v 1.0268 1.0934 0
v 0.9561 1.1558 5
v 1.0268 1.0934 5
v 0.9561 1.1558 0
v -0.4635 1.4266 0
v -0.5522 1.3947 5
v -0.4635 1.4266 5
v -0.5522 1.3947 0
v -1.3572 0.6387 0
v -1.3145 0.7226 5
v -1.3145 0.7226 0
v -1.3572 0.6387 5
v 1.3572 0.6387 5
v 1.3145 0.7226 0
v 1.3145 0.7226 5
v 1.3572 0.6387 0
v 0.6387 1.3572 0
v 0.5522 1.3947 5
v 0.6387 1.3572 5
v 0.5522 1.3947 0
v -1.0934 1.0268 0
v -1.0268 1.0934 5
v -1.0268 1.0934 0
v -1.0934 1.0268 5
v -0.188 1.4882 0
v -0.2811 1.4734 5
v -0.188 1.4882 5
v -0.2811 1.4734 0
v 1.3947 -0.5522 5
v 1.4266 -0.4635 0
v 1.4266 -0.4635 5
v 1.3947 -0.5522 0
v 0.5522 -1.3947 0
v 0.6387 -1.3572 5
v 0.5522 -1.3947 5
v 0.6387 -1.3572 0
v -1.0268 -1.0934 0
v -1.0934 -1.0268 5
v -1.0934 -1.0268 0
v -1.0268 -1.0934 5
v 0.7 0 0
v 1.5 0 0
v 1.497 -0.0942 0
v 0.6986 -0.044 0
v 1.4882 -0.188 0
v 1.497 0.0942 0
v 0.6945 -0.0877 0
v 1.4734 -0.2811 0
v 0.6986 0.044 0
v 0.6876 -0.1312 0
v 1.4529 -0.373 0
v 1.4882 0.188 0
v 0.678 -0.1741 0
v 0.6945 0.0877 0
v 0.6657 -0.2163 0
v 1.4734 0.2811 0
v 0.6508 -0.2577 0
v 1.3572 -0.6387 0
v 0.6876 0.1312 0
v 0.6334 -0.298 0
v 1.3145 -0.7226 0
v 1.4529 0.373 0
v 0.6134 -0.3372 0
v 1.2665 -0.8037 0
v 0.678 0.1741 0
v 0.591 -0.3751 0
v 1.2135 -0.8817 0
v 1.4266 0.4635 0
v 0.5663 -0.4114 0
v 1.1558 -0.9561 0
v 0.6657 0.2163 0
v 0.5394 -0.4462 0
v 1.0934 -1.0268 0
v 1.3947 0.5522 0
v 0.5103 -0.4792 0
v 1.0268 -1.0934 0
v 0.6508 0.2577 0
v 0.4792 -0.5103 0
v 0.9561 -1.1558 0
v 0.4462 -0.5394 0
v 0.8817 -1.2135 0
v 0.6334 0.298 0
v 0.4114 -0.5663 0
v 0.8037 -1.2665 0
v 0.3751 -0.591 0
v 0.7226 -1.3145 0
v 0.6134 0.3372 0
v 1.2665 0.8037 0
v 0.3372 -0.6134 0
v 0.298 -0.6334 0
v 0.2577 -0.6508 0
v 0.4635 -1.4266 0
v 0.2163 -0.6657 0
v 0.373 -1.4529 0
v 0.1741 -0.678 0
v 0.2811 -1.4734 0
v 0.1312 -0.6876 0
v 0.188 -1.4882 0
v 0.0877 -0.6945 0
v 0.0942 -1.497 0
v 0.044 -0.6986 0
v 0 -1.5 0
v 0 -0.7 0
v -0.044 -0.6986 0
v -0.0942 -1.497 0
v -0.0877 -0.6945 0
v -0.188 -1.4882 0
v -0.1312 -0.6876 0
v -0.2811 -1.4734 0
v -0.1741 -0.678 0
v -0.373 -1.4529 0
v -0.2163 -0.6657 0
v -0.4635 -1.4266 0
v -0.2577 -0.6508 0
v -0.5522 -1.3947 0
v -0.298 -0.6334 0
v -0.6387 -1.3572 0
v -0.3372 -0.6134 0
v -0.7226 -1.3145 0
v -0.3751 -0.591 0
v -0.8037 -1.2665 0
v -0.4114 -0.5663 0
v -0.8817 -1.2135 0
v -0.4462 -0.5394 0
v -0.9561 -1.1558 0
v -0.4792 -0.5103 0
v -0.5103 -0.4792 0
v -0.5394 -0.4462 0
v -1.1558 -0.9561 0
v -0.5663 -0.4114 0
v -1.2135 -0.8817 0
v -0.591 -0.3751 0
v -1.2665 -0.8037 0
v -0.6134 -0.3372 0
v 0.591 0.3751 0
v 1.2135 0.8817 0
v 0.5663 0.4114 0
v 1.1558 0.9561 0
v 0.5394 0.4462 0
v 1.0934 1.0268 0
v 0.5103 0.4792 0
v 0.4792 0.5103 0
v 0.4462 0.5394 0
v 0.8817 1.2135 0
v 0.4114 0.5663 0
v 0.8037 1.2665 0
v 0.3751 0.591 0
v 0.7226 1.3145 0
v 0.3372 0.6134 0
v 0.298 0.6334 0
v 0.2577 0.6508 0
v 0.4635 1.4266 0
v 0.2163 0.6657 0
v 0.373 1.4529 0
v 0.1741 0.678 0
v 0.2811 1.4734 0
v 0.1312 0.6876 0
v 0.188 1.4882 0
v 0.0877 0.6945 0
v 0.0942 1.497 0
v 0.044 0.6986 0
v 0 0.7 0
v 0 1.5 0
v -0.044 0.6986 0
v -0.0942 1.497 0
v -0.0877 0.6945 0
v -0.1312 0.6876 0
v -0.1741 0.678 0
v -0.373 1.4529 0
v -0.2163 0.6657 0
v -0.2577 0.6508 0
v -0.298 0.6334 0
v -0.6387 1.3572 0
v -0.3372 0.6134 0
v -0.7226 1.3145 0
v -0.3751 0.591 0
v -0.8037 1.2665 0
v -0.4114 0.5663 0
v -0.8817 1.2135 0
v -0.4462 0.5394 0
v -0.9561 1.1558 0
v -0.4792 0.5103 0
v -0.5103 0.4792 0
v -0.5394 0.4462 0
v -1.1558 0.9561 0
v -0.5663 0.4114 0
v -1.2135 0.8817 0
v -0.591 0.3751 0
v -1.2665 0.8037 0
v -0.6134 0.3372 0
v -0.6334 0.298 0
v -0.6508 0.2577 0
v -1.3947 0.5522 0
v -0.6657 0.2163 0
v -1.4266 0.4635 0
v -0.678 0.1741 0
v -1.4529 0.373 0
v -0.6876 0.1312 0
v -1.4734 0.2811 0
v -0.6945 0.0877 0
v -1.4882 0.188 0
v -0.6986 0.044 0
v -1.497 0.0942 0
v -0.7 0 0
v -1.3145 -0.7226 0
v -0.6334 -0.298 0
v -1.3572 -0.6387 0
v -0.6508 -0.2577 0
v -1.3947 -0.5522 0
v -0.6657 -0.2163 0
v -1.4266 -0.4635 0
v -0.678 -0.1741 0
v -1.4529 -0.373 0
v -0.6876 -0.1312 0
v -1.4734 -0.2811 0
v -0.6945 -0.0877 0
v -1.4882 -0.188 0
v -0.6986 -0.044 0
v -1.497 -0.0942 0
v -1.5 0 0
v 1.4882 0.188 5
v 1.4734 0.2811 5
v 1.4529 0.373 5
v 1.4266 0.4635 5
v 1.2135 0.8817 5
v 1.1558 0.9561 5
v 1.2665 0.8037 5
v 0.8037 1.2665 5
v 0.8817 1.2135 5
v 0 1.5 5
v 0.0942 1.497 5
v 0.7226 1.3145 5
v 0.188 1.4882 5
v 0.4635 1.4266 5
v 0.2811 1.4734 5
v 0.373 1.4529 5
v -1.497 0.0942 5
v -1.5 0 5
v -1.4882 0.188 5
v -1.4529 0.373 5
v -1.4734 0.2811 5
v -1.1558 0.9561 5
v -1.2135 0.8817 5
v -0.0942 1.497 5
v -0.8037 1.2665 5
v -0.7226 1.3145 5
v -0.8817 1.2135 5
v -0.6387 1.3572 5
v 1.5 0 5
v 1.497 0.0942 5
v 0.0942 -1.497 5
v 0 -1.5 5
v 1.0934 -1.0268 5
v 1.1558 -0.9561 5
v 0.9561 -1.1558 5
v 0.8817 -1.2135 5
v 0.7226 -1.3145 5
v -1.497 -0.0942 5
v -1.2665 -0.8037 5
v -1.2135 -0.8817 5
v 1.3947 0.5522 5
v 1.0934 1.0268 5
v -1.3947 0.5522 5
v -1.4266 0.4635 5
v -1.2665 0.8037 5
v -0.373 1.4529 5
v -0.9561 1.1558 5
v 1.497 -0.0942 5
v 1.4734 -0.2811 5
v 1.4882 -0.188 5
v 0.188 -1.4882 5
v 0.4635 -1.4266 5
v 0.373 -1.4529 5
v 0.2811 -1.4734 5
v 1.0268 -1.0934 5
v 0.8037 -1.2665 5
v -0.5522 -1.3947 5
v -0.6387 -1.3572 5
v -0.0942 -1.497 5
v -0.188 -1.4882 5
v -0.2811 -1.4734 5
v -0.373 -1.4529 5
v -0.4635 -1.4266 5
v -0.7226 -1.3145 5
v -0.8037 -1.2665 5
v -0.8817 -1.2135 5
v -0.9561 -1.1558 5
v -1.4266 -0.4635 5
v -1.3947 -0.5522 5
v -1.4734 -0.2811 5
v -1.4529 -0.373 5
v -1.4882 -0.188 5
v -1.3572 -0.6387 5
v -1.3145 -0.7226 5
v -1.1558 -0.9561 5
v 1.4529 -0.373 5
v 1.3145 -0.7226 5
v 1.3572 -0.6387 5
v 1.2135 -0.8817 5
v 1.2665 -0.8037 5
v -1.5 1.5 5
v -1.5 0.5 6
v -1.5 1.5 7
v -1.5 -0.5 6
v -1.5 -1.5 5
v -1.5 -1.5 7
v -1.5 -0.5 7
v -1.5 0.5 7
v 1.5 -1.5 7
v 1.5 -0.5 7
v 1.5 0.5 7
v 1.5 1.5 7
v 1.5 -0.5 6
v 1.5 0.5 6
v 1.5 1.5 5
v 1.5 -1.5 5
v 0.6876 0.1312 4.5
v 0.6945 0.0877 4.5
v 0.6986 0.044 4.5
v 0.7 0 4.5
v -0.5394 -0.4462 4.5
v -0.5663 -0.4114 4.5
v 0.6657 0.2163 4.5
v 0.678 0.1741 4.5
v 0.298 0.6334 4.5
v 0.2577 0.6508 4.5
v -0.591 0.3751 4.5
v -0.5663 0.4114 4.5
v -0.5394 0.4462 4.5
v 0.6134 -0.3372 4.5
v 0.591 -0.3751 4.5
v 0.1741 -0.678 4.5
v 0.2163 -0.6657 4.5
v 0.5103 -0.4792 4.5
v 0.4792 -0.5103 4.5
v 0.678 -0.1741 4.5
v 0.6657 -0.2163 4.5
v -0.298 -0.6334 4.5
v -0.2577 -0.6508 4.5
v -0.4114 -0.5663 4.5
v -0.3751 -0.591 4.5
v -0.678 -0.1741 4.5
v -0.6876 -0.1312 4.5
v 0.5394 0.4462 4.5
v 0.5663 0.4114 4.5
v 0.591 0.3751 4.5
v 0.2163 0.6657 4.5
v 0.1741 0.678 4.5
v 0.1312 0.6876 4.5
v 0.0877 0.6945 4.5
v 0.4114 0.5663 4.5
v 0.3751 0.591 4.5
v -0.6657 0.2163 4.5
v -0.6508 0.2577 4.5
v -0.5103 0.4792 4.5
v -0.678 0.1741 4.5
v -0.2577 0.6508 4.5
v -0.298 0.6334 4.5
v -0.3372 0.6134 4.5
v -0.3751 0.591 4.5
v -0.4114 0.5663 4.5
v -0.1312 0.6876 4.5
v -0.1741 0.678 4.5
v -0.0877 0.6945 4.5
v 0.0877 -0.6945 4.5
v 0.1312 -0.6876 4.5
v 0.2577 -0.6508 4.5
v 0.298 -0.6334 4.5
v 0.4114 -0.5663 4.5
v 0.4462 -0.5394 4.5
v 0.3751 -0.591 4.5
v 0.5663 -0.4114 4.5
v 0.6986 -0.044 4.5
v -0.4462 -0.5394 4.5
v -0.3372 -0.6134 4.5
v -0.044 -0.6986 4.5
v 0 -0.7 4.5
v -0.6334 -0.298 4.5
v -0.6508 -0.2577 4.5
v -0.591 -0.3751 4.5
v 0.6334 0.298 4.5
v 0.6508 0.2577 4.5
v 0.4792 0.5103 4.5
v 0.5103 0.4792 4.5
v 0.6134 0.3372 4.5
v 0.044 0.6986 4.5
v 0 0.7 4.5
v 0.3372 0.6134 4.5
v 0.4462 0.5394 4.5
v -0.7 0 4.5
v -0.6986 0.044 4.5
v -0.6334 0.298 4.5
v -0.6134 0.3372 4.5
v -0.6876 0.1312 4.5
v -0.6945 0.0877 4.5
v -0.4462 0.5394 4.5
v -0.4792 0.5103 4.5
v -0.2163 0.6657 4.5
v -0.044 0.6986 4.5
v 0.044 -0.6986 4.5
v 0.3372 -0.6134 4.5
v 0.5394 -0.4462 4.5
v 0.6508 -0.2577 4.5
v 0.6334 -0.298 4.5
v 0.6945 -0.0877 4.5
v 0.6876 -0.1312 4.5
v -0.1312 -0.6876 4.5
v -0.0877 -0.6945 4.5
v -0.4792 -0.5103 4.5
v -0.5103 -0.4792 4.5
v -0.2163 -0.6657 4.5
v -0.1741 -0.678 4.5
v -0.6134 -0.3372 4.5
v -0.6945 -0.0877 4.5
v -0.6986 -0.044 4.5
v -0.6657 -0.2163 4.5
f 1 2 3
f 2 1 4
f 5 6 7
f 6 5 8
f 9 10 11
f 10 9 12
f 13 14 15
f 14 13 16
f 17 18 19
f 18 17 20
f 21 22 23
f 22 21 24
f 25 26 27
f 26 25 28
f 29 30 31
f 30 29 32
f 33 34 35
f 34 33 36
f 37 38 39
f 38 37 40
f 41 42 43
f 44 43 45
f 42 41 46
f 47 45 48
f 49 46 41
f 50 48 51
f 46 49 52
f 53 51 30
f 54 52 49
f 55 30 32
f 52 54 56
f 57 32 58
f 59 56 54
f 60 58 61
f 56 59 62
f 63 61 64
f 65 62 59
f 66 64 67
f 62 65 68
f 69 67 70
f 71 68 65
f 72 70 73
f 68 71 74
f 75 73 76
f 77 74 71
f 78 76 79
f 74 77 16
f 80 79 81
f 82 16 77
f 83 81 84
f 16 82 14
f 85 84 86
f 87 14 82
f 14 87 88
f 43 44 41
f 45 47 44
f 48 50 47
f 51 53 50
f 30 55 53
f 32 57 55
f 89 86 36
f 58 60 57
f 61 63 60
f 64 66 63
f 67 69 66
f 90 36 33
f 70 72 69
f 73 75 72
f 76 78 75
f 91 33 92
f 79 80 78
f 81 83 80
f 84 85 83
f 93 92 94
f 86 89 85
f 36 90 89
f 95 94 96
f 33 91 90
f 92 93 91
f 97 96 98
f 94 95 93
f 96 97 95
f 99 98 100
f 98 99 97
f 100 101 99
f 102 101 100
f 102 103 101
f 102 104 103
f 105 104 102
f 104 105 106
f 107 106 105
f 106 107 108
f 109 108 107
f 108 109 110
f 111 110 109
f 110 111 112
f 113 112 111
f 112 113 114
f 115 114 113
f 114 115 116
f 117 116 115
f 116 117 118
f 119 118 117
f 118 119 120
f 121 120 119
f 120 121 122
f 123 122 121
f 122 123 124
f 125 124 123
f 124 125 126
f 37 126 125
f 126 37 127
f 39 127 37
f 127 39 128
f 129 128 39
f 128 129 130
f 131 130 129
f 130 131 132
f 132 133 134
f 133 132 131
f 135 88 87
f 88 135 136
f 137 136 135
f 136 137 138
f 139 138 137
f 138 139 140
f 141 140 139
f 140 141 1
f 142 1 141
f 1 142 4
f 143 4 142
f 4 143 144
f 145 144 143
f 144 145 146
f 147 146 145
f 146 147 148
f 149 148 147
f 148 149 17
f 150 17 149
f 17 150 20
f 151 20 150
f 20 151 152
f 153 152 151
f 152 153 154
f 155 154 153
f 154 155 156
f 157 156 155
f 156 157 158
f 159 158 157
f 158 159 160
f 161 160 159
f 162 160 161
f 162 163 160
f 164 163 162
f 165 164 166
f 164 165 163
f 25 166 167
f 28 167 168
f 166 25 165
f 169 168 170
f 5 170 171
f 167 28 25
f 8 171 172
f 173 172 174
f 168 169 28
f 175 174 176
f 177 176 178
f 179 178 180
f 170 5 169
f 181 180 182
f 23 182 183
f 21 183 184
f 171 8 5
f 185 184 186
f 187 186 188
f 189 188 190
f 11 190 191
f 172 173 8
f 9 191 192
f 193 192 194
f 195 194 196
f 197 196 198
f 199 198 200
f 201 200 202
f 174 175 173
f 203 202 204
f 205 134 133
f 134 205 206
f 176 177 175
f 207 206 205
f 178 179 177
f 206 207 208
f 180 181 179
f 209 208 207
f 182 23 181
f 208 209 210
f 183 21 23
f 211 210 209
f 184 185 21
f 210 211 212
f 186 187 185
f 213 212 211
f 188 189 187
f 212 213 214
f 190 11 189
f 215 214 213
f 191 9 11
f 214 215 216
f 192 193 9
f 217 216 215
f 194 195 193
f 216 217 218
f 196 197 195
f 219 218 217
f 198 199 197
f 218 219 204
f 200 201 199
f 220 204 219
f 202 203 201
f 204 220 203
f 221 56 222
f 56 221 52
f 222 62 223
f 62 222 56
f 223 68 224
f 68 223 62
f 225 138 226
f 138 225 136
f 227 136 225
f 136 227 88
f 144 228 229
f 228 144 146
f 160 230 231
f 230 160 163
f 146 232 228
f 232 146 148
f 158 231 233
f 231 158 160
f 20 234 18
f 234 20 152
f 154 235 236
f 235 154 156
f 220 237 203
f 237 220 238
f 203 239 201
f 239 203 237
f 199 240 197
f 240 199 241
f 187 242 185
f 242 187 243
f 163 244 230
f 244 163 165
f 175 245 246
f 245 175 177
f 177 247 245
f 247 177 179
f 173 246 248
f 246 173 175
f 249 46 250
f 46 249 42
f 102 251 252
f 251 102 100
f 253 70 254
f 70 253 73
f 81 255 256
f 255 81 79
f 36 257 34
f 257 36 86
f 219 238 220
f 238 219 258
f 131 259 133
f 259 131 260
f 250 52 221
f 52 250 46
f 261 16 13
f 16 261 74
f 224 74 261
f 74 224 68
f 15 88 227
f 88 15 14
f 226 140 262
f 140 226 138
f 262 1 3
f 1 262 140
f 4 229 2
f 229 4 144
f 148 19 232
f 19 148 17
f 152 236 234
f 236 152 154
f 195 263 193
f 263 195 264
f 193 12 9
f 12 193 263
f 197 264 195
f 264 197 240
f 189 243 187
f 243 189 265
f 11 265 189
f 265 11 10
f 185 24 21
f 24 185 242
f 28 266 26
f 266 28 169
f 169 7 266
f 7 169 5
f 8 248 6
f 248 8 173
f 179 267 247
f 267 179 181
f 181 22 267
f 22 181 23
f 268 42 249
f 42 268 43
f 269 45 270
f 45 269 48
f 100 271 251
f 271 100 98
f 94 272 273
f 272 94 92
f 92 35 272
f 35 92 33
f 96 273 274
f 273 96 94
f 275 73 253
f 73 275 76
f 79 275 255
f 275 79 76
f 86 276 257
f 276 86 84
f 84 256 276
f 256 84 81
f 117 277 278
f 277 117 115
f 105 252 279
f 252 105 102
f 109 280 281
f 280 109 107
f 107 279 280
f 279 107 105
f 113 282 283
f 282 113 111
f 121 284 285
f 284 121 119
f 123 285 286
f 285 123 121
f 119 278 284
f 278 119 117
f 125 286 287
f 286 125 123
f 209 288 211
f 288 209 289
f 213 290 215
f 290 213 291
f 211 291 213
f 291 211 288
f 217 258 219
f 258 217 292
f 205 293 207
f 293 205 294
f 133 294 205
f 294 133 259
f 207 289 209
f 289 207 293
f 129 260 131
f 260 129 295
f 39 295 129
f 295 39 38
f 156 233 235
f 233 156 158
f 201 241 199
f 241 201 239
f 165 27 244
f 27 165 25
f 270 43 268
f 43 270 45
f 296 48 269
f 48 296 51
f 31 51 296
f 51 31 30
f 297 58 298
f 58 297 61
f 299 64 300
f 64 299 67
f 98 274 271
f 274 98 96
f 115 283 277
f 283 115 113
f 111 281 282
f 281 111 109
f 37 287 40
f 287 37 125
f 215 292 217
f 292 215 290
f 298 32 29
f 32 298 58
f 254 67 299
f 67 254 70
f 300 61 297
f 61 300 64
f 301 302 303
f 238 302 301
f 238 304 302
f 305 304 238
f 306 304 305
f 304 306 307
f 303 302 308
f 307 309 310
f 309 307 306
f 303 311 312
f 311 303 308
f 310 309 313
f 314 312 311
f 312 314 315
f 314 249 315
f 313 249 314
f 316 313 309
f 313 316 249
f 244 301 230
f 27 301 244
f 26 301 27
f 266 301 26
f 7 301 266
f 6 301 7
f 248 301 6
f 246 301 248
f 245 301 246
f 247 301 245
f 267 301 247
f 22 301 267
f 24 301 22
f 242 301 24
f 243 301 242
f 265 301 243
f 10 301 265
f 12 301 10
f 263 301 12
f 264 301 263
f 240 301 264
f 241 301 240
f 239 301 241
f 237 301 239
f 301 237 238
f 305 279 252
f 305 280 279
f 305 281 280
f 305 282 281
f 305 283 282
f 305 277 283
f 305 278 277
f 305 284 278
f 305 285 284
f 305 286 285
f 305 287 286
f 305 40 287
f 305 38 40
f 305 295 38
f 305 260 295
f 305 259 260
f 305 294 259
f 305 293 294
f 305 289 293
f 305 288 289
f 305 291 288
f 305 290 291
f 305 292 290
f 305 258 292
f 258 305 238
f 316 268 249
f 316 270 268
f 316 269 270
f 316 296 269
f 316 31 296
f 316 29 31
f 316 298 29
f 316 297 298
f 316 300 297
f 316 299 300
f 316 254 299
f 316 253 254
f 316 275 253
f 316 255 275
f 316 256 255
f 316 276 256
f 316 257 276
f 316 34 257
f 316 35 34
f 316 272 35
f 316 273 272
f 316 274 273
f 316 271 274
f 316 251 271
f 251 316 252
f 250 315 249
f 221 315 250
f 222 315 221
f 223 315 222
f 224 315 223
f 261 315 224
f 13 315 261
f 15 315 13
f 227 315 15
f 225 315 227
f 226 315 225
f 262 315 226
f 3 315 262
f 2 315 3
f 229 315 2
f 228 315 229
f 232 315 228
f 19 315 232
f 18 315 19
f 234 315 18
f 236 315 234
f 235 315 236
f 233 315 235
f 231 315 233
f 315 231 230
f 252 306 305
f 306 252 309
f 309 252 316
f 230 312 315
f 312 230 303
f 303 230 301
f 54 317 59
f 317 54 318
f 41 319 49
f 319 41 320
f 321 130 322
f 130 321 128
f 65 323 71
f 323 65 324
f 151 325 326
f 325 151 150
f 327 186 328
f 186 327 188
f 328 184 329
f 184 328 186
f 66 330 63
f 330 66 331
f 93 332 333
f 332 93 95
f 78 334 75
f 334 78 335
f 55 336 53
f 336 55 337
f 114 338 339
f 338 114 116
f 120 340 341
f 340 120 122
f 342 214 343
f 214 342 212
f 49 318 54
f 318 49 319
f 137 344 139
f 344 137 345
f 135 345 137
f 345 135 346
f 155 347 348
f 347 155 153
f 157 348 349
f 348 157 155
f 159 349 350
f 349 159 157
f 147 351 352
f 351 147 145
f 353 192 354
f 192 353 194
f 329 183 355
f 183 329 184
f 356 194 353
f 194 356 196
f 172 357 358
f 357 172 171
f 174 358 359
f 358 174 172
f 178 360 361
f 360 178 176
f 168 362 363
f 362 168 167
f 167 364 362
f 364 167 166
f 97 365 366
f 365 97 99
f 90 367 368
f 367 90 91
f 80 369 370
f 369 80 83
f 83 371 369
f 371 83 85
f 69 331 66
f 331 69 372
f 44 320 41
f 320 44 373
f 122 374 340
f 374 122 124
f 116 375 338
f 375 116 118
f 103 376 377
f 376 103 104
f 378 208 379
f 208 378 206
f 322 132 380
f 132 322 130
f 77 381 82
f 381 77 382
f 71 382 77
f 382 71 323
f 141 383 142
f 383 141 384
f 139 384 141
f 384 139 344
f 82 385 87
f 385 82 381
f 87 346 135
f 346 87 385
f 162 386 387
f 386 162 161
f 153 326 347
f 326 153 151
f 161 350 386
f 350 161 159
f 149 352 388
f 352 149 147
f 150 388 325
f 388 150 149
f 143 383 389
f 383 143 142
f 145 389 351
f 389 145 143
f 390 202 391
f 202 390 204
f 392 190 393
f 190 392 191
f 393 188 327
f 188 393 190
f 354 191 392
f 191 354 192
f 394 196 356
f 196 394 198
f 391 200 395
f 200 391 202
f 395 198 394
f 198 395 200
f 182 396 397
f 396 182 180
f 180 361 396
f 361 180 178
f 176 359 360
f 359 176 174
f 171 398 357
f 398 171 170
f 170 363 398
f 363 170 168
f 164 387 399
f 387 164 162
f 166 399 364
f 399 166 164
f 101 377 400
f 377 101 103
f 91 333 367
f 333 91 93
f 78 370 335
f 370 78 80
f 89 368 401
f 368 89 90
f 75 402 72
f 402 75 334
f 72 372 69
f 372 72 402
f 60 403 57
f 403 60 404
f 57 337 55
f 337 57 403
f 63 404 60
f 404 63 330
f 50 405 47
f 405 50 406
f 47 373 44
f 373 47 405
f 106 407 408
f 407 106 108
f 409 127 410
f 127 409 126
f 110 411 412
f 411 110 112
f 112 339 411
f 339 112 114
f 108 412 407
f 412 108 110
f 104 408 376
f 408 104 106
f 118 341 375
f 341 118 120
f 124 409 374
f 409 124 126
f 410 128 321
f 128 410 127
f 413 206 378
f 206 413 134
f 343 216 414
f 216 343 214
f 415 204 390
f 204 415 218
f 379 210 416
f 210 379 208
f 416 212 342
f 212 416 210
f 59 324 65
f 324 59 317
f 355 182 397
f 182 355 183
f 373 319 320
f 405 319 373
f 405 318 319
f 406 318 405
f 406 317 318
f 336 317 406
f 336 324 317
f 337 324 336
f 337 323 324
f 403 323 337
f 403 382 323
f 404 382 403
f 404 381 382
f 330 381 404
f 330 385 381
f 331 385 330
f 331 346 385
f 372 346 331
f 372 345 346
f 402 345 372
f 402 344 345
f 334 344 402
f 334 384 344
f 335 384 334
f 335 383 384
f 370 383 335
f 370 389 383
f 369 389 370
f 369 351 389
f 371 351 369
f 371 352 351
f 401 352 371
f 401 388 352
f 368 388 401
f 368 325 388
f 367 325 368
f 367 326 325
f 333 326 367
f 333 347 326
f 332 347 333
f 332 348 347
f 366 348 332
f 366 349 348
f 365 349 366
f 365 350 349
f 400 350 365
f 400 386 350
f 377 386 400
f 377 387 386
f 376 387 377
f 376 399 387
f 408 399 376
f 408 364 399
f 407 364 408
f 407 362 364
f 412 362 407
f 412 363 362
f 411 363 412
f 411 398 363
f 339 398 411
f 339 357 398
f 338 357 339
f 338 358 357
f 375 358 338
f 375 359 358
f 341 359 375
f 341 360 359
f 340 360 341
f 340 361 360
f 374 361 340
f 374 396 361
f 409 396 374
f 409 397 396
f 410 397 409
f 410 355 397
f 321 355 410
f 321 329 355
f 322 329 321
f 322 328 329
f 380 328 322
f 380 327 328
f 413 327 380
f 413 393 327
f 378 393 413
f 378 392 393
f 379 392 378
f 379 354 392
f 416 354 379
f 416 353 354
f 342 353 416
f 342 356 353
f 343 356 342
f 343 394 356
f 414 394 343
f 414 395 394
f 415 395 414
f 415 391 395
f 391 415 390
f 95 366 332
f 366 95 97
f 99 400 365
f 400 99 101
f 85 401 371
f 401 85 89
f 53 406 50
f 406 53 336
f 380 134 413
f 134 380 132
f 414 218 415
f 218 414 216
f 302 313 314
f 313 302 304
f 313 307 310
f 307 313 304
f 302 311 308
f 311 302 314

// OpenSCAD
difference() { 
    union() {
        cylinder(r1=1.5, r2=1.5,h=6, $fn=100);           
            
        translate([-1.5, -1.5, 5]) {
        cube([3,3,2]);};
    }
        
    translate([0, 0, -0.5]) {
        cylinder(r1=0.7, r2=0.7, h=5, $fn=100);};
        
    translate([-2, -0.5, 6]) {
        cube([4,1,1.5]);};
    }
